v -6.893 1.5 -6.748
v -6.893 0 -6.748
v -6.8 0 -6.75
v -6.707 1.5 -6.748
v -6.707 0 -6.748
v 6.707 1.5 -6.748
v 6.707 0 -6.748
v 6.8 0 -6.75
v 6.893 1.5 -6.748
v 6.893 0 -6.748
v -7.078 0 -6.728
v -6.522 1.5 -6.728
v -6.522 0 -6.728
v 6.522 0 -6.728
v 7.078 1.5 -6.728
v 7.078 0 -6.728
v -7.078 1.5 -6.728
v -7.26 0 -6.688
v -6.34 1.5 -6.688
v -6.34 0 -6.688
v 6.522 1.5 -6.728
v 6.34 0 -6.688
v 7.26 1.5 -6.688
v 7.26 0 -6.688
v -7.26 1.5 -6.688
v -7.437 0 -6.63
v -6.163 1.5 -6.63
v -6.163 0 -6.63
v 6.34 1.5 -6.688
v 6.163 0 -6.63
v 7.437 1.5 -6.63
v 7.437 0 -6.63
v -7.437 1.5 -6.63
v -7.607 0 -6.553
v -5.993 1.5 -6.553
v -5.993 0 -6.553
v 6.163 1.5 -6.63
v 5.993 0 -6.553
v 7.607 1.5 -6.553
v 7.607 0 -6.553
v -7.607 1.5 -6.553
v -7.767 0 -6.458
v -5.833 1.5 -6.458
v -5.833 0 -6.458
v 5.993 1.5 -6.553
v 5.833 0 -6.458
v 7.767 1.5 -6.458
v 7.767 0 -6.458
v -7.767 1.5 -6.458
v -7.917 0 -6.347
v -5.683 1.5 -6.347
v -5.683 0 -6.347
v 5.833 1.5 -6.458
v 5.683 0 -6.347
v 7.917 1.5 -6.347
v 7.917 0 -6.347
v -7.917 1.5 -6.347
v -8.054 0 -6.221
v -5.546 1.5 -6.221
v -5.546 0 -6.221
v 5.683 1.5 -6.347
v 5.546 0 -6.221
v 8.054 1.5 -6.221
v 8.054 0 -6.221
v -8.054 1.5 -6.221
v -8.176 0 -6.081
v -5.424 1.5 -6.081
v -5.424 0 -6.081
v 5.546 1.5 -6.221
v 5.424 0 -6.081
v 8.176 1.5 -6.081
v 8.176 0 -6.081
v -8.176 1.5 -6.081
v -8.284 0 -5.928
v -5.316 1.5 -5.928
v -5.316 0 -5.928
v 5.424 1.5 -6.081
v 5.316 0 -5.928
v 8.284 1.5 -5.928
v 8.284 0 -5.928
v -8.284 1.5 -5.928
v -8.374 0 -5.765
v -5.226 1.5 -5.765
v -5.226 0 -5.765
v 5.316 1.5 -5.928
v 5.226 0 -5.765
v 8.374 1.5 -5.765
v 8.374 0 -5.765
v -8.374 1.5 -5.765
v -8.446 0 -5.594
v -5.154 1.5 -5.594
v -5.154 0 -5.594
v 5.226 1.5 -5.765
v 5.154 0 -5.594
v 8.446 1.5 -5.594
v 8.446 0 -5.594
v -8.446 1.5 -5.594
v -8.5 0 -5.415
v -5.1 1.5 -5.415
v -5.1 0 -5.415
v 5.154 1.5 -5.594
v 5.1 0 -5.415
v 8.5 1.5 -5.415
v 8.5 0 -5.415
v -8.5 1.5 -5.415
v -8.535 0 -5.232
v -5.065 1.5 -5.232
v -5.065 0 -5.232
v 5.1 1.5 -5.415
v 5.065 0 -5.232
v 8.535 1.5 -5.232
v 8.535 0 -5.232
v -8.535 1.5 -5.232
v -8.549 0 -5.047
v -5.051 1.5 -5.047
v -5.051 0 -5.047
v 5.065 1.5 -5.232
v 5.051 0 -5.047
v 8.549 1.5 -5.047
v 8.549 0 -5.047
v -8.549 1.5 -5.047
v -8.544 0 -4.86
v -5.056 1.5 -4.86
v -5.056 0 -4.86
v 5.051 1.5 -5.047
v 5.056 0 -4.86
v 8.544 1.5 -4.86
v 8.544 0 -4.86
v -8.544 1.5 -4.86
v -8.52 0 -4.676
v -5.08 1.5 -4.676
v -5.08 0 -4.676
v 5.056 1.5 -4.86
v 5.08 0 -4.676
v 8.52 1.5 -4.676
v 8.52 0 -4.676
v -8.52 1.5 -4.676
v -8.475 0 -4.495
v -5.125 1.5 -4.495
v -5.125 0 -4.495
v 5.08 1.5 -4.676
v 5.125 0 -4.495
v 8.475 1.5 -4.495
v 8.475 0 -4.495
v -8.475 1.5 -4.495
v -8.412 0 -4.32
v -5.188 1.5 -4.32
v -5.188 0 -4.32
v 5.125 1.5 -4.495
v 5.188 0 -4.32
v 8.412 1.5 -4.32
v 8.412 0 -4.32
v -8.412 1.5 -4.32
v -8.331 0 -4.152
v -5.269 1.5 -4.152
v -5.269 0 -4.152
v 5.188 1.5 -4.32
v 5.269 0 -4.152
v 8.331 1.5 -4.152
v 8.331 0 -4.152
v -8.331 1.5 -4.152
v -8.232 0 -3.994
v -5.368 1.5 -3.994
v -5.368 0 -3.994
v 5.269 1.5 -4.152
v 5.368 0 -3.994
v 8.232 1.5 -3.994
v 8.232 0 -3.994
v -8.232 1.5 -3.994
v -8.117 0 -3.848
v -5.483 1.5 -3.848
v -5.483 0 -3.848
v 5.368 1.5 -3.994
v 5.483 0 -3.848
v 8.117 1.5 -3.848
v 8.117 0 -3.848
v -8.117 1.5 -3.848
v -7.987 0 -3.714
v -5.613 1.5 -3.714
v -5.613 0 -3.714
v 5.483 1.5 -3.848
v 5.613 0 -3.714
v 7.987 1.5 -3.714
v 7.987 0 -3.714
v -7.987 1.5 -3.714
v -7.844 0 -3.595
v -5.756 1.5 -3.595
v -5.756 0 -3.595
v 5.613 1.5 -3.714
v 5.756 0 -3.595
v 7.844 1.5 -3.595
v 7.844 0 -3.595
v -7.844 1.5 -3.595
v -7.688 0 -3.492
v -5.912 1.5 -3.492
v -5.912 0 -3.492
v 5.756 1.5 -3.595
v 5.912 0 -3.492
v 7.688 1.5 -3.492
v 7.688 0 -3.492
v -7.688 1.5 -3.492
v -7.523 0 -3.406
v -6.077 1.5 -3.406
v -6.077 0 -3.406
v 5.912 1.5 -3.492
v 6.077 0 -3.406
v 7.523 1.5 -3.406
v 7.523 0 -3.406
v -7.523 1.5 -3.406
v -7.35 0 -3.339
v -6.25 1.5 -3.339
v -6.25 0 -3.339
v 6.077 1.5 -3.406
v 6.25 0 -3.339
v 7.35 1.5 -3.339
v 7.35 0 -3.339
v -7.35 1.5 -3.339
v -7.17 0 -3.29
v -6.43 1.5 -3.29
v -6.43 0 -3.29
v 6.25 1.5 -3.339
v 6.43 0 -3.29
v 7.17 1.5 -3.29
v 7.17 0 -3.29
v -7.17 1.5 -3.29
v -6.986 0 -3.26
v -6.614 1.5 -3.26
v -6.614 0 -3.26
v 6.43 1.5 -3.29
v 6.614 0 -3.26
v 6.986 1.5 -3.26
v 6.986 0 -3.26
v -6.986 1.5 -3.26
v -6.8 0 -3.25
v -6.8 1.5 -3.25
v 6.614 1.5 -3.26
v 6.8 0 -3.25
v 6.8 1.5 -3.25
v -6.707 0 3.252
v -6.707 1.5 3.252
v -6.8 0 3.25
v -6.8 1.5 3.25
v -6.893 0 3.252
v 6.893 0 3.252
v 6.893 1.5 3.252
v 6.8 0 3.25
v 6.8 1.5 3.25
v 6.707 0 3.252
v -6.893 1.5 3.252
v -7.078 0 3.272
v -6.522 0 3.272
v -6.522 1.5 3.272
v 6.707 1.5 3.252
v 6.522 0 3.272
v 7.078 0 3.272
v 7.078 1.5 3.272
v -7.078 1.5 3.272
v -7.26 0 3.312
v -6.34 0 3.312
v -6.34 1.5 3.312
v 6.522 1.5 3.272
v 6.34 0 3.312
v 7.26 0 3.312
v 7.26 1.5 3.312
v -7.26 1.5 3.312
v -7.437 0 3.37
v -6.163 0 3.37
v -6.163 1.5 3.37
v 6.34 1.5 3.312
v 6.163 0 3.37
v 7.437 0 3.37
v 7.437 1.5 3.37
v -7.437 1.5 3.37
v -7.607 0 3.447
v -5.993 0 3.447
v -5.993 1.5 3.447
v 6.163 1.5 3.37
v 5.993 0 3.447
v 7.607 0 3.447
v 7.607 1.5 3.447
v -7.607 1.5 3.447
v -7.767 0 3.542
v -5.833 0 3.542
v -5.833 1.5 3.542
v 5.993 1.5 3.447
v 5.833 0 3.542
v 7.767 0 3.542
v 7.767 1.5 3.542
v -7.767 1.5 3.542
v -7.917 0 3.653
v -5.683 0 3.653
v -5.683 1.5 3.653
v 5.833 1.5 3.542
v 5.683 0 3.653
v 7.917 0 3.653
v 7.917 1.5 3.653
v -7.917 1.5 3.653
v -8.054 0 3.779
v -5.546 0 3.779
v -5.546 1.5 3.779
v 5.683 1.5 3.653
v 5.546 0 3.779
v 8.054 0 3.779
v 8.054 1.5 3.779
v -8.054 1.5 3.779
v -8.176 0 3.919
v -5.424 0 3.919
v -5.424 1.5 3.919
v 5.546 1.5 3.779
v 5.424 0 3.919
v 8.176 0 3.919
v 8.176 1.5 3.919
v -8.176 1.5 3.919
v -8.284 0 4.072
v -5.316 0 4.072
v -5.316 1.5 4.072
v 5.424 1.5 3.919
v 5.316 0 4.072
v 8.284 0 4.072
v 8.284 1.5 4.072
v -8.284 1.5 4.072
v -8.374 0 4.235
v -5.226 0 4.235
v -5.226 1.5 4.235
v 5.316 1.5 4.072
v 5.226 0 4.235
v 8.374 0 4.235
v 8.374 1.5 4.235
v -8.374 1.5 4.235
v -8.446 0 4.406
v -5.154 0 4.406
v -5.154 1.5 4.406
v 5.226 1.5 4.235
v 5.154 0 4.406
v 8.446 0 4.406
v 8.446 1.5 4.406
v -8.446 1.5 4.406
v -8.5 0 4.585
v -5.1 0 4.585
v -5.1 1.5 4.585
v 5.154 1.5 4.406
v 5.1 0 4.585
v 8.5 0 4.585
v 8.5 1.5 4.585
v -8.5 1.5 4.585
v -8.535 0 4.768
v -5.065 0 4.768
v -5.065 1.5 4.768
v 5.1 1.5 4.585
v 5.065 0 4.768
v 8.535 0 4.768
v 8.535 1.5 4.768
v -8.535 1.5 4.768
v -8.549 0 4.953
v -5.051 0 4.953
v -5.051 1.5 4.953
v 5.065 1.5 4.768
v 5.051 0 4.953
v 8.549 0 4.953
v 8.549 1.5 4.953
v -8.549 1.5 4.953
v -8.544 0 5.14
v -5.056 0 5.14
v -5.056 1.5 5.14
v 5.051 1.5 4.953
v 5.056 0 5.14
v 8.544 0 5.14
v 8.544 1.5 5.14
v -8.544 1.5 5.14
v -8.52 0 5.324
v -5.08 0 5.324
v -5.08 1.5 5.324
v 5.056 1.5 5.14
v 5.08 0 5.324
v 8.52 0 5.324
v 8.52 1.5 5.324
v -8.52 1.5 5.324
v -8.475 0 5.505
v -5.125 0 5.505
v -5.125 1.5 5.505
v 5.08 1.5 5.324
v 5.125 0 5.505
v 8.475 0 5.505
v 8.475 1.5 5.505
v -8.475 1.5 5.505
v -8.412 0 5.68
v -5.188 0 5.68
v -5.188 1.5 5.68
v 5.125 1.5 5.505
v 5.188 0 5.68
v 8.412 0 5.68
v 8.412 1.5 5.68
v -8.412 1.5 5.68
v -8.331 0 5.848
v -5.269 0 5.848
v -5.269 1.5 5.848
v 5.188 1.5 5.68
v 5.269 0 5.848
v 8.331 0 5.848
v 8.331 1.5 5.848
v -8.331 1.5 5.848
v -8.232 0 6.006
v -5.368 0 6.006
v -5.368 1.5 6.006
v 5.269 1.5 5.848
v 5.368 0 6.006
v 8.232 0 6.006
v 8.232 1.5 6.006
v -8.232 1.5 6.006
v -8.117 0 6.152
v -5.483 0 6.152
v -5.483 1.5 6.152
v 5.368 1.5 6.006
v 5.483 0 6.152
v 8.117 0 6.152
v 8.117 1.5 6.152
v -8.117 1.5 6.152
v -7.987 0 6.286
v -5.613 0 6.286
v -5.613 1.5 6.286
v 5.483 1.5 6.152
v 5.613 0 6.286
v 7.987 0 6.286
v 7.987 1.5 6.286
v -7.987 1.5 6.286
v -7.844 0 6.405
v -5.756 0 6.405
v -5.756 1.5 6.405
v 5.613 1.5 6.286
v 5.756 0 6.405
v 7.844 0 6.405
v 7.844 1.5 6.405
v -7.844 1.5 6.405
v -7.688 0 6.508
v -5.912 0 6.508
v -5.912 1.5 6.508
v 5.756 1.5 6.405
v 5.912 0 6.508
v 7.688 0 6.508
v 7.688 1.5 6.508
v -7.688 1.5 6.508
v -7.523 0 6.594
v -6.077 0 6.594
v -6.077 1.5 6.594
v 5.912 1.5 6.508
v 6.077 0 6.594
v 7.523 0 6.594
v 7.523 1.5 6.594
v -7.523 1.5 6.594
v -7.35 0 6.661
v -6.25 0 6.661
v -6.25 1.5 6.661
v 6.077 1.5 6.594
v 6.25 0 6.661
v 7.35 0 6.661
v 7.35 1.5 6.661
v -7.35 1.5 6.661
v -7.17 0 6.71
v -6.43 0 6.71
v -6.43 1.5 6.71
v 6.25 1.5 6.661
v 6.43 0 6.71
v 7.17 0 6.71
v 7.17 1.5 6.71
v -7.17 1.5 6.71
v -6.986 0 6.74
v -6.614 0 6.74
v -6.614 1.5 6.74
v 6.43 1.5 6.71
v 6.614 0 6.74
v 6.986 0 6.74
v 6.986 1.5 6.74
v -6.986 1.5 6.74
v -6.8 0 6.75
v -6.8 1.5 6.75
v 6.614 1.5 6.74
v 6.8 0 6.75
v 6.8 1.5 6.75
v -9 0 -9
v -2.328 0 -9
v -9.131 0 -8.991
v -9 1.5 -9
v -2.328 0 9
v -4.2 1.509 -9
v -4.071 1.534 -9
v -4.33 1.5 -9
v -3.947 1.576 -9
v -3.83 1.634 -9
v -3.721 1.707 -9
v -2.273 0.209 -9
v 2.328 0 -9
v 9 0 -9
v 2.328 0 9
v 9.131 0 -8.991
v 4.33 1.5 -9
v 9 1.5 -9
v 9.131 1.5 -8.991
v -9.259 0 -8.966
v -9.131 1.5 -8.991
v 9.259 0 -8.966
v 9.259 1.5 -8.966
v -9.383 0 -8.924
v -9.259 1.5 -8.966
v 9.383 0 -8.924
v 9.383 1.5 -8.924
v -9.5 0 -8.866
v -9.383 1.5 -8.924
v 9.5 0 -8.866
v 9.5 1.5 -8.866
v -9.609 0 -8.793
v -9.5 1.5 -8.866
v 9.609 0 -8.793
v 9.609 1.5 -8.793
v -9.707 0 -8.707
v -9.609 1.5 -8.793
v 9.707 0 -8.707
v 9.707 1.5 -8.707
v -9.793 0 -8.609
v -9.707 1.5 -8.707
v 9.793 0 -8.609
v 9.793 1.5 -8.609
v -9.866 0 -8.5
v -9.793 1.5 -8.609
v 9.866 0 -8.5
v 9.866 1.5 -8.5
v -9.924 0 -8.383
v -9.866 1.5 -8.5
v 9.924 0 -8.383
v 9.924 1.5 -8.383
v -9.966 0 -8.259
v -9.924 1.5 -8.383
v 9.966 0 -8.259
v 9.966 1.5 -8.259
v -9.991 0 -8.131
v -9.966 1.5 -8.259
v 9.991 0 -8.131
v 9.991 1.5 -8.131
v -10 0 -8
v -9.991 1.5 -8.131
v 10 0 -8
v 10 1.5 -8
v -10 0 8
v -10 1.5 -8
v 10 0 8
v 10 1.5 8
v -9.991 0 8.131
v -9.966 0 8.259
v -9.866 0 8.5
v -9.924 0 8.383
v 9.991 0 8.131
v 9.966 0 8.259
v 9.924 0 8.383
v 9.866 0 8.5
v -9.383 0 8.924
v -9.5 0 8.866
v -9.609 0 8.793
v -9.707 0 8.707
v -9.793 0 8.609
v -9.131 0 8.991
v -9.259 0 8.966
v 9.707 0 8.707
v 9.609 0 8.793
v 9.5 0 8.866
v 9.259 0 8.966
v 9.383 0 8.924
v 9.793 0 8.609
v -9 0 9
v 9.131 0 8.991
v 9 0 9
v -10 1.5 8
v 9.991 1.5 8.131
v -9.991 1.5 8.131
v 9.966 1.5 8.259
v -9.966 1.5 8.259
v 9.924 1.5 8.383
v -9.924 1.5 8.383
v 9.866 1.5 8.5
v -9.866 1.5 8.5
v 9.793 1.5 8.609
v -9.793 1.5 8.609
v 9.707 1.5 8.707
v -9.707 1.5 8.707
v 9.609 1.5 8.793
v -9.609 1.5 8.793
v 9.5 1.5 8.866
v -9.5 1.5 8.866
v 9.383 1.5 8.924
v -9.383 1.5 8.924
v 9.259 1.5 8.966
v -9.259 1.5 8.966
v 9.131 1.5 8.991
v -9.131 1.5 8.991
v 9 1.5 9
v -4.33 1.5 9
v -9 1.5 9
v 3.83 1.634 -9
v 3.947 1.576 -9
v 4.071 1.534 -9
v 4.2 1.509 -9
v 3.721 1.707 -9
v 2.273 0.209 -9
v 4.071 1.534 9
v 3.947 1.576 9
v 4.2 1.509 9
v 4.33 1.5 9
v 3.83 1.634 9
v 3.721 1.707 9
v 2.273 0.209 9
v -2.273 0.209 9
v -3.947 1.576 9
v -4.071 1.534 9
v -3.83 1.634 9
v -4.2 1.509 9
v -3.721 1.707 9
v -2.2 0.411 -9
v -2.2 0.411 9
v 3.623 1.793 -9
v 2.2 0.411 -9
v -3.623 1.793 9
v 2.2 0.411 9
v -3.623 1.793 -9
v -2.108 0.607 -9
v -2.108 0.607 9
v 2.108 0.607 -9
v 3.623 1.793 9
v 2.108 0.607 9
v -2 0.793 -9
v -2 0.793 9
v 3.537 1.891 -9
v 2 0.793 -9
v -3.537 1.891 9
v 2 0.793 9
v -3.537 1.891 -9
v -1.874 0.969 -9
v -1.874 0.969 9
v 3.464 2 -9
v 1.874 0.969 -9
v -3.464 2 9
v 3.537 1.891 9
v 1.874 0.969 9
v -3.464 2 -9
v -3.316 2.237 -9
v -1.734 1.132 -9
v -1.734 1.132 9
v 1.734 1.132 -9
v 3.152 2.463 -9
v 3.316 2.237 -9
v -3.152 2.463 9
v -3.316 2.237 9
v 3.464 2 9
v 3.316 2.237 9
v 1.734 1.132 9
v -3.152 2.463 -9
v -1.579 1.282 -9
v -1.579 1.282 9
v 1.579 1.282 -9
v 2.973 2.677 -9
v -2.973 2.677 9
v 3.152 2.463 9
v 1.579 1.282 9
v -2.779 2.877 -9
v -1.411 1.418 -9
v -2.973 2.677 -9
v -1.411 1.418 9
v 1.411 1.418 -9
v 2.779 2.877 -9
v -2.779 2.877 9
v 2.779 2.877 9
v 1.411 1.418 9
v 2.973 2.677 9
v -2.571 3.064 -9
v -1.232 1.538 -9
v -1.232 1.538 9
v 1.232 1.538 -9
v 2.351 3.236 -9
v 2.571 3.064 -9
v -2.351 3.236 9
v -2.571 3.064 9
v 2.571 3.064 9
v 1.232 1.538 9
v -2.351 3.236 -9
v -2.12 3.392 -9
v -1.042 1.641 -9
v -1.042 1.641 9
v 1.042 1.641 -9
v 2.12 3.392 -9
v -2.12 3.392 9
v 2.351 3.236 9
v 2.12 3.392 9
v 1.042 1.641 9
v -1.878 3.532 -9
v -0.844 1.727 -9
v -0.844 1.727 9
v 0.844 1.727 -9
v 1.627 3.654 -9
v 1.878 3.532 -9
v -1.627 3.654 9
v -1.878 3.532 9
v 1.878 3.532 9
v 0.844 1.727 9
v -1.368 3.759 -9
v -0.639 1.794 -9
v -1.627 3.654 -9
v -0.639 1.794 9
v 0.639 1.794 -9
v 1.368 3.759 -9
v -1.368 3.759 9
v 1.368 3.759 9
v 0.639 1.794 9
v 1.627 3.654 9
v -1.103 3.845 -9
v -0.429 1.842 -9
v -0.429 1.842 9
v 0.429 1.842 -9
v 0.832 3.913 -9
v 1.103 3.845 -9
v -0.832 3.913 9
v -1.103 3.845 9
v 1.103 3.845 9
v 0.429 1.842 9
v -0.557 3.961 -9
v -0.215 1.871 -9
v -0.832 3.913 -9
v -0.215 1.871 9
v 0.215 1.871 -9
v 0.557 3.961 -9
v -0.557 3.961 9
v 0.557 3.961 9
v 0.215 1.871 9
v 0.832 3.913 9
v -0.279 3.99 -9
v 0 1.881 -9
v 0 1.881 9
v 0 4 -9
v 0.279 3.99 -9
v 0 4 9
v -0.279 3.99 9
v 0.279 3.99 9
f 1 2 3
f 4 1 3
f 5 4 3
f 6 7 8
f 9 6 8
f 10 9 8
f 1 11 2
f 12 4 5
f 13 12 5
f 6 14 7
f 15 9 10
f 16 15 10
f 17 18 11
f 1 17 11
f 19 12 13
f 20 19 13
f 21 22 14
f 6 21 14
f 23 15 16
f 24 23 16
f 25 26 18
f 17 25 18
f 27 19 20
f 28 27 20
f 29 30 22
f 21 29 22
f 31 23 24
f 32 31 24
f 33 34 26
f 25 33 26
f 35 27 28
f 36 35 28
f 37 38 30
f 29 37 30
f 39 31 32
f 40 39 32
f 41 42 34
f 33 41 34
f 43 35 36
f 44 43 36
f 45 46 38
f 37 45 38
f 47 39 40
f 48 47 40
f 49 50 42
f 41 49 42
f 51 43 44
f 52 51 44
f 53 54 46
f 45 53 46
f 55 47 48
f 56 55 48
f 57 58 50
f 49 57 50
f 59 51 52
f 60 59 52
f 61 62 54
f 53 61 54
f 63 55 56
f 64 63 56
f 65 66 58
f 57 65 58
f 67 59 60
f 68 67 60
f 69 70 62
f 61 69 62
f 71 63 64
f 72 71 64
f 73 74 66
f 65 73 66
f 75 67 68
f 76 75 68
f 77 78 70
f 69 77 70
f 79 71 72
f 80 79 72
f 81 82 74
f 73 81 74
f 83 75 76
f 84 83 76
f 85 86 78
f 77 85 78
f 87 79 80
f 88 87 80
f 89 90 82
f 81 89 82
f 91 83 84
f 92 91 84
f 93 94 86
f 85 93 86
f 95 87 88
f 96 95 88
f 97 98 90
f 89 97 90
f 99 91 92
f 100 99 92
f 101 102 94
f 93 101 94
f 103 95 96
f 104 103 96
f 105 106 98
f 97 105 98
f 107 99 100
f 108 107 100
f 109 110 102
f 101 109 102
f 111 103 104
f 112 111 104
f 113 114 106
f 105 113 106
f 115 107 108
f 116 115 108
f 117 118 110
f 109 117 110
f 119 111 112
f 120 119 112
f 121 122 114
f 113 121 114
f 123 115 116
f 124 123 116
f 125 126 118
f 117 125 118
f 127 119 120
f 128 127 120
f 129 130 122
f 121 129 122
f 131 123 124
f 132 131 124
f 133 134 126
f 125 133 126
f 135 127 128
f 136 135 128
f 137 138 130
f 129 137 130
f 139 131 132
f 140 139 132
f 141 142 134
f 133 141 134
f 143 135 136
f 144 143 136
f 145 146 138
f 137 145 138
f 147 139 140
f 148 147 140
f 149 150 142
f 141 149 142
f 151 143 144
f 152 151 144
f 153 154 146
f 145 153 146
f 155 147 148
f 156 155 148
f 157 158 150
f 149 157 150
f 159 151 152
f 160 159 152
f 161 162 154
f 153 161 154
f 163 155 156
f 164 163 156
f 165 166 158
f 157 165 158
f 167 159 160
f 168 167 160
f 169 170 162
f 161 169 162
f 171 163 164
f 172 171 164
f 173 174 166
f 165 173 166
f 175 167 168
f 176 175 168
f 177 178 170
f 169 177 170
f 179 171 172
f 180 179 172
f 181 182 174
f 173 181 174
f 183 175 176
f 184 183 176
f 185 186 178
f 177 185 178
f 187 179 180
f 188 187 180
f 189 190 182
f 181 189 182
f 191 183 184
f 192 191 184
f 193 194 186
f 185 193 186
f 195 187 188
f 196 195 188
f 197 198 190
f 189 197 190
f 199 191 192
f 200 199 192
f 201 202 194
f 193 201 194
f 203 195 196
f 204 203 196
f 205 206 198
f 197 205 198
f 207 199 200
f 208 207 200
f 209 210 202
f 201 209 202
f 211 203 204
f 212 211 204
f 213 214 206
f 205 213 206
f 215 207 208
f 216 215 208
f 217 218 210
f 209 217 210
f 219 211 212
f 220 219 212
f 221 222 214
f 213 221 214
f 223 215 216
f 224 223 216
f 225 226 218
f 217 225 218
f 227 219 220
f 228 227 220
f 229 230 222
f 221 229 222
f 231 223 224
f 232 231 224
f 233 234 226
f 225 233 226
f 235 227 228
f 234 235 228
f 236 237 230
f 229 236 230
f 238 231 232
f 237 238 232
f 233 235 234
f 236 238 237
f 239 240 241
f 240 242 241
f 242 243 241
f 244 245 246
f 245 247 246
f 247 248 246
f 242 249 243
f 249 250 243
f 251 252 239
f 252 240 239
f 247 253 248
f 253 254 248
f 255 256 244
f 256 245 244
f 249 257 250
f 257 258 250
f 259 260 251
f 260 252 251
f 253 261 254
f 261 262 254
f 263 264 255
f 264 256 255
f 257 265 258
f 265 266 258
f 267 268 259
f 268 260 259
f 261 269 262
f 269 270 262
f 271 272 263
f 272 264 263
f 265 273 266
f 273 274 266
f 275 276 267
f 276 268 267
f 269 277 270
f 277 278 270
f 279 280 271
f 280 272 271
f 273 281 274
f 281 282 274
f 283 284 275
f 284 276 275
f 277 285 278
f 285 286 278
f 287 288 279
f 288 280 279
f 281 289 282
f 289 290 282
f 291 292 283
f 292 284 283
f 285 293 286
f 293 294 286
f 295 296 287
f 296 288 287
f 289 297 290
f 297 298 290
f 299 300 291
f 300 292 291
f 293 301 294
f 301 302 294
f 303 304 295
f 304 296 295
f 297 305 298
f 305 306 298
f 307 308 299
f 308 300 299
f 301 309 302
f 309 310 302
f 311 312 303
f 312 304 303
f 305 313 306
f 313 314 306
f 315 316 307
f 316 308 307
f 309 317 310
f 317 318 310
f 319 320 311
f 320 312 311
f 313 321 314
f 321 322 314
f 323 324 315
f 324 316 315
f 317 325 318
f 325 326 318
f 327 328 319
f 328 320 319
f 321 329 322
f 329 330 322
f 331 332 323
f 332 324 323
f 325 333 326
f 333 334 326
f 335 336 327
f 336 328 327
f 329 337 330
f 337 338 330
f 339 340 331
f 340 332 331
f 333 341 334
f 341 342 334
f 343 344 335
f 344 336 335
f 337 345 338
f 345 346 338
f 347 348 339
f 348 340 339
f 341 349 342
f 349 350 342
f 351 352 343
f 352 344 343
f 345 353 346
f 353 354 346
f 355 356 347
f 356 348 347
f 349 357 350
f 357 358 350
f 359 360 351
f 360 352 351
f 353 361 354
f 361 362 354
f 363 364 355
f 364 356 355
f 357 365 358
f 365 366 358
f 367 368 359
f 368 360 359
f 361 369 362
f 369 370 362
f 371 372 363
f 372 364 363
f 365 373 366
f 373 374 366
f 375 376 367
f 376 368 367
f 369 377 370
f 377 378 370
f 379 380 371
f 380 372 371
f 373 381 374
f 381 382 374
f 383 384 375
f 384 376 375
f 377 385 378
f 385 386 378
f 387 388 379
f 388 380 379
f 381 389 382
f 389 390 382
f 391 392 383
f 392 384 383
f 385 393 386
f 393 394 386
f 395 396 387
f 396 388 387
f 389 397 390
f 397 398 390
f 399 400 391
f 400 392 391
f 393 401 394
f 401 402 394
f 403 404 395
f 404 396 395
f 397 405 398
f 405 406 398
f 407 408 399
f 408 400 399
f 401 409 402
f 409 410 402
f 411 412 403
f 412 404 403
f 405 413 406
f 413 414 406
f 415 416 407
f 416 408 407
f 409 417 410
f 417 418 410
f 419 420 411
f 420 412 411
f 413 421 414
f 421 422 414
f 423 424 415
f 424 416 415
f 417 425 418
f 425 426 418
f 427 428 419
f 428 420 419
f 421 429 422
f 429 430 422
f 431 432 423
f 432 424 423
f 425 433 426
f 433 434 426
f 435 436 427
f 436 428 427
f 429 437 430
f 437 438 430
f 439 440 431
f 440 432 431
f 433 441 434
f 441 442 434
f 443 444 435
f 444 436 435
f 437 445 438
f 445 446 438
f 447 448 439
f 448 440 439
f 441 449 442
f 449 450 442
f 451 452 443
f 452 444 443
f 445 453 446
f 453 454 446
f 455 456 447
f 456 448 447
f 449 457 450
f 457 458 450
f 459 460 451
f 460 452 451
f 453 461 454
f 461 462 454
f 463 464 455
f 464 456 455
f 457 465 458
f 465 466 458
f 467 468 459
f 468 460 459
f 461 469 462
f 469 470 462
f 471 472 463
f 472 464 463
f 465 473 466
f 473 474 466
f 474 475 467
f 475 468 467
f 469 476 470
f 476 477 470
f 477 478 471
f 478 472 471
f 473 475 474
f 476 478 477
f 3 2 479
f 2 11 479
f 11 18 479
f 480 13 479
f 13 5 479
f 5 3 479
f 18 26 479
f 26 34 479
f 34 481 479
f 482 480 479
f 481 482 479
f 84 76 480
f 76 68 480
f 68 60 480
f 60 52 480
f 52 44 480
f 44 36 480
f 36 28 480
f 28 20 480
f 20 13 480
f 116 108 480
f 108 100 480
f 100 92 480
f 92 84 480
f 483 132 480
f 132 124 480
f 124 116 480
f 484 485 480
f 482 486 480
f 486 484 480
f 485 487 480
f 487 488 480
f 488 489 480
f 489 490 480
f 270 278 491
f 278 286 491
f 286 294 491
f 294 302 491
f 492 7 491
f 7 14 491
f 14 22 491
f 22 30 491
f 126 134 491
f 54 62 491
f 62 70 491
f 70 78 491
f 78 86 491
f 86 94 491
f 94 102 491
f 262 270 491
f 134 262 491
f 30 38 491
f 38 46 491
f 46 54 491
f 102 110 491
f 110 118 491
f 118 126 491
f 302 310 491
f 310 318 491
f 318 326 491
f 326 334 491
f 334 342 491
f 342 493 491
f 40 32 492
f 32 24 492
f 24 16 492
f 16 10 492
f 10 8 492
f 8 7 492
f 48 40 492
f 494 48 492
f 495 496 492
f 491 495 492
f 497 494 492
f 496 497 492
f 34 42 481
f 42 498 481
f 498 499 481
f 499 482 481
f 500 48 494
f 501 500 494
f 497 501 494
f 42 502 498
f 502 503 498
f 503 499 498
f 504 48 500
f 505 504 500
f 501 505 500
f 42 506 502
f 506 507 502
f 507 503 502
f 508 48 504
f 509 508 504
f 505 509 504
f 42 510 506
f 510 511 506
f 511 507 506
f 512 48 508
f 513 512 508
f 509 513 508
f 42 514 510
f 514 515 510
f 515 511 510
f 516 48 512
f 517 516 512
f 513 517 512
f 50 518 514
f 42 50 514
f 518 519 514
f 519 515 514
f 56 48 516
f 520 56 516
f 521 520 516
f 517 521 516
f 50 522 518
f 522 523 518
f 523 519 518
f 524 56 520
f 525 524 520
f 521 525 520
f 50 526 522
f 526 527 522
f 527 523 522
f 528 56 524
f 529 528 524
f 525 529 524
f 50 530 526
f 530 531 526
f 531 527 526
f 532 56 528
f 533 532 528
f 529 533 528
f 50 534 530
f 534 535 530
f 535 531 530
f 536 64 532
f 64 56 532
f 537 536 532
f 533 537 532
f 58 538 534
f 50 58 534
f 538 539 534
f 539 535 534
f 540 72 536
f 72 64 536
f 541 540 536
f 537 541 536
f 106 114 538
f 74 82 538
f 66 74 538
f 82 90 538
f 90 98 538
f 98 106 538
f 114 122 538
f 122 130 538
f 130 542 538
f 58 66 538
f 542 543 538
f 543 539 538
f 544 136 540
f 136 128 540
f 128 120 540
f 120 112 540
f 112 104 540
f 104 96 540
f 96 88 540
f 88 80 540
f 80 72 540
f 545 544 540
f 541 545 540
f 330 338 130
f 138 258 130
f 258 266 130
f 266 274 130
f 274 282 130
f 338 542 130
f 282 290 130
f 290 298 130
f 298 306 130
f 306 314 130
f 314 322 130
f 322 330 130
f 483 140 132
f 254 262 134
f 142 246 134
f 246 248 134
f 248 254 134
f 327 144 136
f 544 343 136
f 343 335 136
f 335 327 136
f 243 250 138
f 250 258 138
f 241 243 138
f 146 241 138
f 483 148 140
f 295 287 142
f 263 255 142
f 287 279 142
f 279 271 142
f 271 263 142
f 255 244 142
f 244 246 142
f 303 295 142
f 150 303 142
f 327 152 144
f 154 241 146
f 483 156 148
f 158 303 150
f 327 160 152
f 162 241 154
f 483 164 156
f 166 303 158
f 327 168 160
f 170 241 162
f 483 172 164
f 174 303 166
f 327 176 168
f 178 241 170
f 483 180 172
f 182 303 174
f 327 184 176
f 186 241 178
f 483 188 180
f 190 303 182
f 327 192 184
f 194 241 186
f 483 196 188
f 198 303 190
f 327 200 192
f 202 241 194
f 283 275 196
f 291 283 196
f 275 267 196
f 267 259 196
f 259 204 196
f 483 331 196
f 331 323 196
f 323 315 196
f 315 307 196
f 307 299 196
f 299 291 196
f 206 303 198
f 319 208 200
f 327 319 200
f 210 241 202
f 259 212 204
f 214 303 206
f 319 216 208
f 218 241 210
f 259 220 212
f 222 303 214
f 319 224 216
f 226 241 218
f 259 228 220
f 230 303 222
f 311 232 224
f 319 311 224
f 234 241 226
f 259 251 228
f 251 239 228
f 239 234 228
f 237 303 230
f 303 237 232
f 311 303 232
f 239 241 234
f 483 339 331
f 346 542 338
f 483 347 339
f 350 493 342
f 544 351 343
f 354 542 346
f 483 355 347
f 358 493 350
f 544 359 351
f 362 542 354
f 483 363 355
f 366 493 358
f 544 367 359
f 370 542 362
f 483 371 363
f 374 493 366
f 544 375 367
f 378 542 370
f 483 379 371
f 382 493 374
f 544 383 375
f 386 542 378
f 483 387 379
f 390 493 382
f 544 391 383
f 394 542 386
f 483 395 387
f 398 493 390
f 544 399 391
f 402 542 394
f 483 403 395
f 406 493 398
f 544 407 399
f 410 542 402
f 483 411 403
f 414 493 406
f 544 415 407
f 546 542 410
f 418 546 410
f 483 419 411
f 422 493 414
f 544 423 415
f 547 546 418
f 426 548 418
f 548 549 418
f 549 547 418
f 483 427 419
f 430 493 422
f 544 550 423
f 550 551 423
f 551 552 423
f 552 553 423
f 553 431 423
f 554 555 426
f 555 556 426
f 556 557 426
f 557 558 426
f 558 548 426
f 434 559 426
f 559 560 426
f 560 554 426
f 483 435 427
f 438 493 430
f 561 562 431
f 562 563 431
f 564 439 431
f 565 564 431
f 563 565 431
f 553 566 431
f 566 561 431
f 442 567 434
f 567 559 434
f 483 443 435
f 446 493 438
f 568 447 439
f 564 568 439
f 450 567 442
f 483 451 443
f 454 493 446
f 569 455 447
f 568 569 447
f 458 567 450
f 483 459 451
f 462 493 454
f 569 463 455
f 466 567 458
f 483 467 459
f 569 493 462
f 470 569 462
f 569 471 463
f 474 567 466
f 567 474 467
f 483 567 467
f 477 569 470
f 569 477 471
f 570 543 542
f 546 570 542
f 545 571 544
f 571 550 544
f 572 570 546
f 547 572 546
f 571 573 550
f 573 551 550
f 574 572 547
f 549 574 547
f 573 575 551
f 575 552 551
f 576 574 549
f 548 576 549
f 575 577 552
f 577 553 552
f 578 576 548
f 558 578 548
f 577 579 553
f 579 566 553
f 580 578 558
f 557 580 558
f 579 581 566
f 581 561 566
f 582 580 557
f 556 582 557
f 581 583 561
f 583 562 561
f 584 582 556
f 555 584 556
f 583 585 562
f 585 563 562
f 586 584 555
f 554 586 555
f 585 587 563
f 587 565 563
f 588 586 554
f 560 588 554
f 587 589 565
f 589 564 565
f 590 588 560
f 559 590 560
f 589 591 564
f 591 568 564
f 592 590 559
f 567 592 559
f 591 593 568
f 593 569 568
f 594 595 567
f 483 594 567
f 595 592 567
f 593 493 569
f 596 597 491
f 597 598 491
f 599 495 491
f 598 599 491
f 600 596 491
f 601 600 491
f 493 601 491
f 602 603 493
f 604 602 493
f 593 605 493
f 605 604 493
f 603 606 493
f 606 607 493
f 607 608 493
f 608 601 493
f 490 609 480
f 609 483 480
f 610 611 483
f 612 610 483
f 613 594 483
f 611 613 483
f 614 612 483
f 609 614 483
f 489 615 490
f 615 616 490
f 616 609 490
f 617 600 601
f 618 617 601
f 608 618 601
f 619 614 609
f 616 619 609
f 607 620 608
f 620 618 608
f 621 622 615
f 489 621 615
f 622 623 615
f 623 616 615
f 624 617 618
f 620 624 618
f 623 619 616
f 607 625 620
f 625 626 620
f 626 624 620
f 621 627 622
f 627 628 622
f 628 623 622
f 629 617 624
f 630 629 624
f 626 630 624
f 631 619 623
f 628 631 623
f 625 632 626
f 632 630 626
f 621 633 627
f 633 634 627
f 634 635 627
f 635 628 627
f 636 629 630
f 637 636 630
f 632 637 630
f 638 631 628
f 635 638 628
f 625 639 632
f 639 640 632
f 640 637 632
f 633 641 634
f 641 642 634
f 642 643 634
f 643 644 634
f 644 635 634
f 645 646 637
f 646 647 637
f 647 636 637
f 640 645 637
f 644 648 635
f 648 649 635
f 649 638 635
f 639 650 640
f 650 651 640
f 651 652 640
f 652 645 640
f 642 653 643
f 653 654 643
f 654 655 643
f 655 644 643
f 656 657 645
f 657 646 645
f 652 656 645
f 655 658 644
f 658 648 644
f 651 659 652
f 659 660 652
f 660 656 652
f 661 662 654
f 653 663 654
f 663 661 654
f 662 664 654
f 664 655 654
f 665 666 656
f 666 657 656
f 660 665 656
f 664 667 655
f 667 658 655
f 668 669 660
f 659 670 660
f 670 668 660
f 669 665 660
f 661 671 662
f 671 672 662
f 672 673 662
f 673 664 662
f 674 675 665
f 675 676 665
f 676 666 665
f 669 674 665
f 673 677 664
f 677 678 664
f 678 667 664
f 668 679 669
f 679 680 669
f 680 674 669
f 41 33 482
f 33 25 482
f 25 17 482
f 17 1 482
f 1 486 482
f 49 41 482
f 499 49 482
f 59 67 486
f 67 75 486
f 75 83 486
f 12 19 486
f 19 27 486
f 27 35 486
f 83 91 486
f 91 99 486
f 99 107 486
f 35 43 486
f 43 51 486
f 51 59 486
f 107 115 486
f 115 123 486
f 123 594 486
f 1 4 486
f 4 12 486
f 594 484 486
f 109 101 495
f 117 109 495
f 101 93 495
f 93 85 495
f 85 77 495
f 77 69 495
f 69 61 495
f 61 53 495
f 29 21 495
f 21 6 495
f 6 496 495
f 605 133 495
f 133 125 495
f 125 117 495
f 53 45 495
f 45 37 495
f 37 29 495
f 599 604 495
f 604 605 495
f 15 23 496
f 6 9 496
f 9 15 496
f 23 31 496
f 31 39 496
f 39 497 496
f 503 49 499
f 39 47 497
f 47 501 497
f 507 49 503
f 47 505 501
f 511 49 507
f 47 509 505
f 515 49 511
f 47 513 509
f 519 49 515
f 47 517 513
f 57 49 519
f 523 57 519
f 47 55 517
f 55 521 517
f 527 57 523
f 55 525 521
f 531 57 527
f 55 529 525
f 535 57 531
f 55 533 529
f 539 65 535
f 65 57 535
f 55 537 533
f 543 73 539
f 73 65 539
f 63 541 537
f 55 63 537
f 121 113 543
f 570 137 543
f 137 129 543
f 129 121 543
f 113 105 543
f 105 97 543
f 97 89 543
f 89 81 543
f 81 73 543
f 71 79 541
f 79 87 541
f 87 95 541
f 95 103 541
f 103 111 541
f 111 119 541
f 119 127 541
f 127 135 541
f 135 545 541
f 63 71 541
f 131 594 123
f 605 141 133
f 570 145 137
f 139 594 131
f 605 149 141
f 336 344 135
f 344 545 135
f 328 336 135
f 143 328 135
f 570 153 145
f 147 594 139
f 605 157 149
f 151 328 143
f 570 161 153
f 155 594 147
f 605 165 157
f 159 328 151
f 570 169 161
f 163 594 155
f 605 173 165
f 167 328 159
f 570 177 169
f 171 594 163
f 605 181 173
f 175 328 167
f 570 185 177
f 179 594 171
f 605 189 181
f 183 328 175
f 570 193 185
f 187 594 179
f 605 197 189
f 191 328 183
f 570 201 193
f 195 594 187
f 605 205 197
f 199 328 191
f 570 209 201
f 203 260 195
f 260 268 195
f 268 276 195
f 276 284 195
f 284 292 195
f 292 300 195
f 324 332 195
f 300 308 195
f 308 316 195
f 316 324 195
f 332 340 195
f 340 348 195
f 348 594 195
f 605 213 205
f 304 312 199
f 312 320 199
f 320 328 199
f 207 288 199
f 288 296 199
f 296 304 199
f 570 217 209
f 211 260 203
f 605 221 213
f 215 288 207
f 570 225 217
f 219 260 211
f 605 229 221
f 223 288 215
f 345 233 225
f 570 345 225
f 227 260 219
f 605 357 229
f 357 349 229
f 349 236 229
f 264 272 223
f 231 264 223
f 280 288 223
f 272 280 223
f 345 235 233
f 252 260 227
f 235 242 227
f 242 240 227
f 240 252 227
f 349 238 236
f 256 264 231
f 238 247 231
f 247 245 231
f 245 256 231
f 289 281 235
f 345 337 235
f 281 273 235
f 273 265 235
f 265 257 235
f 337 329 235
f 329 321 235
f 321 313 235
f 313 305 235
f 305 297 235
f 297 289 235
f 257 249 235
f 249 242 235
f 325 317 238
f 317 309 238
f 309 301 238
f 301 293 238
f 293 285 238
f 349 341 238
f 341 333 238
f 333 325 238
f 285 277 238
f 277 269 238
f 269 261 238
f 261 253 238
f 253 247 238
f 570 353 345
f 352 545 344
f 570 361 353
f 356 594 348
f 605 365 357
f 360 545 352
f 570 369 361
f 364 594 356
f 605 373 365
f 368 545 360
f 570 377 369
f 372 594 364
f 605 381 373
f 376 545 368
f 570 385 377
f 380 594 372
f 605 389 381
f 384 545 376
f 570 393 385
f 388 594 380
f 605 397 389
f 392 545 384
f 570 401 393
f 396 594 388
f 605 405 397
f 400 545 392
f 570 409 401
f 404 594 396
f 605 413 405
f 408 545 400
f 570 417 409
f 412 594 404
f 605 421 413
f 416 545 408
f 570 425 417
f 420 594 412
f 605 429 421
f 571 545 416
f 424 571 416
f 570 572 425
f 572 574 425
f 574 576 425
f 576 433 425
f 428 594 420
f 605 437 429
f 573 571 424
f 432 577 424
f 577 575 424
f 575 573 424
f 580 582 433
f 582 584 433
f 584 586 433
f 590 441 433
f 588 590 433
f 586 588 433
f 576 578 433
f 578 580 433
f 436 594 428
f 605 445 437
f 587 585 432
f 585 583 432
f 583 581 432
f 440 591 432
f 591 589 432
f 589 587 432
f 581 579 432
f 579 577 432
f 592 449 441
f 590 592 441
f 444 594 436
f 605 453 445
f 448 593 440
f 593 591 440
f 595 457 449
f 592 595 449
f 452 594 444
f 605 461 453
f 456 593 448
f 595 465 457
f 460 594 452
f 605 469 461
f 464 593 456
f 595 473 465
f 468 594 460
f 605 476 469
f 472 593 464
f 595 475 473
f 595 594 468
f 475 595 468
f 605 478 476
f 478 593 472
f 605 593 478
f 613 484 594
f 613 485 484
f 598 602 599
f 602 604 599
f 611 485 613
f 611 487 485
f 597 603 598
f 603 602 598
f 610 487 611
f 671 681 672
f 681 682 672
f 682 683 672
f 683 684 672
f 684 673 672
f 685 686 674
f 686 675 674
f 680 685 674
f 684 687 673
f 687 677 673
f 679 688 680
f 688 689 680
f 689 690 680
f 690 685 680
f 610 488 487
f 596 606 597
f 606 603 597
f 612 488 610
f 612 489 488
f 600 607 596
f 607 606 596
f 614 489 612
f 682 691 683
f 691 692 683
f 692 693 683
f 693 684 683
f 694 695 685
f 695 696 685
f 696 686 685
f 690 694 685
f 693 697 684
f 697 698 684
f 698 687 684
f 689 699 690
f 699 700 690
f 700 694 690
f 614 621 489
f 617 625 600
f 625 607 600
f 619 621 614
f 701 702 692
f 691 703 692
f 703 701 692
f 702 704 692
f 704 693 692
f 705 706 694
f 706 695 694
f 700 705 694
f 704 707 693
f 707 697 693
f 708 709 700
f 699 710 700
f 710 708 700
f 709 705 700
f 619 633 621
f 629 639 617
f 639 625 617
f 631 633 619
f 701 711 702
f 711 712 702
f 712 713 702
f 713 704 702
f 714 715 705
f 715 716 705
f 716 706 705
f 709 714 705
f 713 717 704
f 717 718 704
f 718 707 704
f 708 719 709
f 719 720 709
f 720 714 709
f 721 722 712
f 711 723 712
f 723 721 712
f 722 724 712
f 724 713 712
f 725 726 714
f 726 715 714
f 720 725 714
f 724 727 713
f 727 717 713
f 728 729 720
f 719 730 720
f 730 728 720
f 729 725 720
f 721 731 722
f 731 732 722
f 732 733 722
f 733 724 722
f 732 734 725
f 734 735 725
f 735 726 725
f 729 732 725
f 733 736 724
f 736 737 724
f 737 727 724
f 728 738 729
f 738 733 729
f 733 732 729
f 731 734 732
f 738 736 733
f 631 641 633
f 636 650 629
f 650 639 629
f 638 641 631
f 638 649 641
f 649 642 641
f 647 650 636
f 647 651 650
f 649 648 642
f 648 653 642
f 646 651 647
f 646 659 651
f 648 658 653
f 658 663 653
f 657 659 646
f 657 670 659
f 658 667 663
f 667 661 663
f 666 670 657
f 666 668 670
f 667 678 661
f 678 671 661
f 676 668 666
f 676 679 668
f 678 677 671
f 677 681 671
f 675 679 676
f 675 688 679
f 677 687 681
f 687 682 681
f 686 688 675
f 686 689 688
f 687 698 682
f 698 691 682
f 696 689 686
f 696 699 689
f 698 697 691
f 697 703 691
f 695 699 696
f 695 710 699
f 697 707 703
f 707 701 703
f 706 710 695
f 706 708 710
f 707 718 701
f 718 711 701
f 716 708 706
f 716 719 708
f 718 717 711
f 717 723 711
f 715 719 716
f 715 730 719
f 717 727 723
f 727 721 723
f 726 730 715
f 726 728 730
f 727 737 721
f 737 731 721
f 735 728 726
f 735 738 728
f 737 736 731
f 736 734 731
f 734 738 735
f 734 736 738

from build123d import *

# Parameters (mm, degrees)
BOSS_EXTRUDE1_DEPTH = 9
CUT_EXTRUDE1_REACH  = 20
SKETCH3_R           = 2.38125
CUT_EXTRUDE2_REACH  = 3.5
SKETCH4_R           = 1.75
FILLET1_R           = 1
FILLET2_R           = 1


with BuildPart() as part:
    # Sketch1 → Boss-Extrude1 (new body, symmetric)
    with BuildSketch(Plane.XY):
        with BuildLine():
            Line((-10, 0), (-4, 0))
            ThreePointArc((-4, 0), (-3.92634671, 0.76406905), (-3.708099244, 1.5))
            Line((-3.708099244, 1.5), (-10, 1.5))
            Line((-10, 1.5), (-10, 0))
        make_face()
        with BuildLine():
            Line((-4, 0), (4, 0))
            ThreePointArc((4, 0), (3.92634671, 0.76406905), (3.708099244, 1.5))
            Line((3.708099244, 1.5), (-3.708099244, 1.5))
            ThreePointArc((-3.708099244, 1.5), (-3.92634671, 0.76406905), (-4, 0))
        make_face()
        with BuildLine():
            ThreePointArc((3.708099244, 1.5), (3.92634671, 0.76406905), (4, 0))
            Line((4, 0), (10, 0))
            Line((10, 0), (10, 1.5))
            Line((10, 1.5), (3.708099244, 1.5))
        make_face()
        with BuildLine():
            Line((-3.708099244, 1.5), (3.708099244, 1.5))
            ThreePointArc((3.708099244, 1.5), (0, 4), (-3.708099244, 1.5))
        make_face()
    extrude(amount=BOSS_EXTRUDE1_DEPTH, both=True)

    # Sketch3 → Cut-Extrude1 (cut, up to next)
    with BuildSketch(Plane.XY.offset(9), mode=Mode.PRIVATE) as cut_extrude1_sk1:
        with Locations((0, -0.5)):
            Circle(SKETCH3_R)
    cut_extrude1_tool1 = extrude(cut_extrude1_sk1.sketch, amount=-CUT_EXTRUDE1_REACH, mode=Mode.PRIVATE) & part.part
    add(cut_extrude1_tool1.solids().sort_by_distance((0, -0.5, 9))[0], mode=Mode.SUBTRACT)

    # Sketch4 → Cut-Extrude2 (cut, up to next)
    with BuildSketch(Plane(origin=(0, 1.5, 0), x_dir=(1, 0, 0), z_dir=(0, 1, 0)), mode=Mode.PRIVATE) as cut_extrude2_sk1:
        with Locations((-6.8, 5)):
            Circle(SKETCH4_R)
    cut_extrude2_tool1 = extrude(cut_extrude2_sk1.sketch, amount=-CUT_EXTRUDE2_REACH, mode=Mode.PRIVATE) & part.part
    add(cut_extrude2_tool1.solids().sort_by_distance((-6.8, 1.5, -5))[0], mode=Mode.SUBTRACT)
    # Sketch4 → Cut-Extrude2 (cut, up to next)
    with BuildSketch(Plane(origin=(0, 1.5, 0), x_dir=(1, 0, 0), z_dir=(0, 1, 0)), mode=Mode.PRIVATE) as cut_extrude2_sk2:
        with Locations((6.8, 5)):
            Circle(SKETCH4_R)
    cut_extrude2_tool2 = extrude(cut_extrude2_sk2.sketch, amount=-CUT_EXTRUDE2_REACH, mode=Mode.PRIVATE) & part.part
    add(cut_extrude2_tool2.solids().sort_by_distance((6.8, 1.5, -5))[0], mode=Mode.SUBTRACT)
    # Sketch4 → Cut-Extrude2 (cut, up to next)
    with BuildSketch(Plane(origin=(0, 1.5, 0), x_dir=(1, 0, 0), z_dir=(0, 1, 0)), mode=Mode.PRIVATE) as cut_extrude2_sk3:
        with Locations((6.8, -5)):
            Circle(SKETCH4_R)
    cut_extrude2_tool3 = extrude(cut_extrude2_sk3.sketch, amount=-CUT_EXTRUDE2_REACH, mode=Mode.PRIVATE) & part.part
    add(cut_extrude2_tool3.solids().sort_by_distance((6.8, 1.5, 5))[0], mode=Mode.SUBTRACT)
    # Sketch4 → Cut-Extrude2 (cut, up to next)
    with BuildSketch(Plane(origin=(0, 1.5, 0), x_dir=(1, 0, 0), z_dir=(0, 1, 0)), mode=Mode.PRIVATE) as cut_extrude2_sk4:
        with Locations((-6.8, -5)):
            Circle(SKETCH4_R)
    cut_extrude2_tool4 = extrude(cut_extrude2_sk4.sketch, amount=-CUT_EXTRUDE2_REACH, mode=Mode.PRIVATE) & part.part
    add(cut_extrude2_tool4.solids().sort_by_distance((-6.8, 1.5, 5))[0], mode=Mode.SUBTRACT)

    # Fillet1
    fillet1_edges = [part.edges().sort_by_distance(p)[0] for p in [
        (10, 0.75, -9),
        (-10, 0.75, -9),
        (-10, 0.75, 9),
        (10, 0.75, 9),
    ]]
    fillet(fillet1_edges, radius=FILLET1_R)

    # Fillet2
    fillet2_edges = [part.edges().sort_by_distance(p)[0] for p in [
        (-3.708099244, 1.5, 0),
        (3.708099244, 1.5, 0),
    ]]
    fillet(fillet2_edges, radius=FILLET2_R)


solid = part.part
